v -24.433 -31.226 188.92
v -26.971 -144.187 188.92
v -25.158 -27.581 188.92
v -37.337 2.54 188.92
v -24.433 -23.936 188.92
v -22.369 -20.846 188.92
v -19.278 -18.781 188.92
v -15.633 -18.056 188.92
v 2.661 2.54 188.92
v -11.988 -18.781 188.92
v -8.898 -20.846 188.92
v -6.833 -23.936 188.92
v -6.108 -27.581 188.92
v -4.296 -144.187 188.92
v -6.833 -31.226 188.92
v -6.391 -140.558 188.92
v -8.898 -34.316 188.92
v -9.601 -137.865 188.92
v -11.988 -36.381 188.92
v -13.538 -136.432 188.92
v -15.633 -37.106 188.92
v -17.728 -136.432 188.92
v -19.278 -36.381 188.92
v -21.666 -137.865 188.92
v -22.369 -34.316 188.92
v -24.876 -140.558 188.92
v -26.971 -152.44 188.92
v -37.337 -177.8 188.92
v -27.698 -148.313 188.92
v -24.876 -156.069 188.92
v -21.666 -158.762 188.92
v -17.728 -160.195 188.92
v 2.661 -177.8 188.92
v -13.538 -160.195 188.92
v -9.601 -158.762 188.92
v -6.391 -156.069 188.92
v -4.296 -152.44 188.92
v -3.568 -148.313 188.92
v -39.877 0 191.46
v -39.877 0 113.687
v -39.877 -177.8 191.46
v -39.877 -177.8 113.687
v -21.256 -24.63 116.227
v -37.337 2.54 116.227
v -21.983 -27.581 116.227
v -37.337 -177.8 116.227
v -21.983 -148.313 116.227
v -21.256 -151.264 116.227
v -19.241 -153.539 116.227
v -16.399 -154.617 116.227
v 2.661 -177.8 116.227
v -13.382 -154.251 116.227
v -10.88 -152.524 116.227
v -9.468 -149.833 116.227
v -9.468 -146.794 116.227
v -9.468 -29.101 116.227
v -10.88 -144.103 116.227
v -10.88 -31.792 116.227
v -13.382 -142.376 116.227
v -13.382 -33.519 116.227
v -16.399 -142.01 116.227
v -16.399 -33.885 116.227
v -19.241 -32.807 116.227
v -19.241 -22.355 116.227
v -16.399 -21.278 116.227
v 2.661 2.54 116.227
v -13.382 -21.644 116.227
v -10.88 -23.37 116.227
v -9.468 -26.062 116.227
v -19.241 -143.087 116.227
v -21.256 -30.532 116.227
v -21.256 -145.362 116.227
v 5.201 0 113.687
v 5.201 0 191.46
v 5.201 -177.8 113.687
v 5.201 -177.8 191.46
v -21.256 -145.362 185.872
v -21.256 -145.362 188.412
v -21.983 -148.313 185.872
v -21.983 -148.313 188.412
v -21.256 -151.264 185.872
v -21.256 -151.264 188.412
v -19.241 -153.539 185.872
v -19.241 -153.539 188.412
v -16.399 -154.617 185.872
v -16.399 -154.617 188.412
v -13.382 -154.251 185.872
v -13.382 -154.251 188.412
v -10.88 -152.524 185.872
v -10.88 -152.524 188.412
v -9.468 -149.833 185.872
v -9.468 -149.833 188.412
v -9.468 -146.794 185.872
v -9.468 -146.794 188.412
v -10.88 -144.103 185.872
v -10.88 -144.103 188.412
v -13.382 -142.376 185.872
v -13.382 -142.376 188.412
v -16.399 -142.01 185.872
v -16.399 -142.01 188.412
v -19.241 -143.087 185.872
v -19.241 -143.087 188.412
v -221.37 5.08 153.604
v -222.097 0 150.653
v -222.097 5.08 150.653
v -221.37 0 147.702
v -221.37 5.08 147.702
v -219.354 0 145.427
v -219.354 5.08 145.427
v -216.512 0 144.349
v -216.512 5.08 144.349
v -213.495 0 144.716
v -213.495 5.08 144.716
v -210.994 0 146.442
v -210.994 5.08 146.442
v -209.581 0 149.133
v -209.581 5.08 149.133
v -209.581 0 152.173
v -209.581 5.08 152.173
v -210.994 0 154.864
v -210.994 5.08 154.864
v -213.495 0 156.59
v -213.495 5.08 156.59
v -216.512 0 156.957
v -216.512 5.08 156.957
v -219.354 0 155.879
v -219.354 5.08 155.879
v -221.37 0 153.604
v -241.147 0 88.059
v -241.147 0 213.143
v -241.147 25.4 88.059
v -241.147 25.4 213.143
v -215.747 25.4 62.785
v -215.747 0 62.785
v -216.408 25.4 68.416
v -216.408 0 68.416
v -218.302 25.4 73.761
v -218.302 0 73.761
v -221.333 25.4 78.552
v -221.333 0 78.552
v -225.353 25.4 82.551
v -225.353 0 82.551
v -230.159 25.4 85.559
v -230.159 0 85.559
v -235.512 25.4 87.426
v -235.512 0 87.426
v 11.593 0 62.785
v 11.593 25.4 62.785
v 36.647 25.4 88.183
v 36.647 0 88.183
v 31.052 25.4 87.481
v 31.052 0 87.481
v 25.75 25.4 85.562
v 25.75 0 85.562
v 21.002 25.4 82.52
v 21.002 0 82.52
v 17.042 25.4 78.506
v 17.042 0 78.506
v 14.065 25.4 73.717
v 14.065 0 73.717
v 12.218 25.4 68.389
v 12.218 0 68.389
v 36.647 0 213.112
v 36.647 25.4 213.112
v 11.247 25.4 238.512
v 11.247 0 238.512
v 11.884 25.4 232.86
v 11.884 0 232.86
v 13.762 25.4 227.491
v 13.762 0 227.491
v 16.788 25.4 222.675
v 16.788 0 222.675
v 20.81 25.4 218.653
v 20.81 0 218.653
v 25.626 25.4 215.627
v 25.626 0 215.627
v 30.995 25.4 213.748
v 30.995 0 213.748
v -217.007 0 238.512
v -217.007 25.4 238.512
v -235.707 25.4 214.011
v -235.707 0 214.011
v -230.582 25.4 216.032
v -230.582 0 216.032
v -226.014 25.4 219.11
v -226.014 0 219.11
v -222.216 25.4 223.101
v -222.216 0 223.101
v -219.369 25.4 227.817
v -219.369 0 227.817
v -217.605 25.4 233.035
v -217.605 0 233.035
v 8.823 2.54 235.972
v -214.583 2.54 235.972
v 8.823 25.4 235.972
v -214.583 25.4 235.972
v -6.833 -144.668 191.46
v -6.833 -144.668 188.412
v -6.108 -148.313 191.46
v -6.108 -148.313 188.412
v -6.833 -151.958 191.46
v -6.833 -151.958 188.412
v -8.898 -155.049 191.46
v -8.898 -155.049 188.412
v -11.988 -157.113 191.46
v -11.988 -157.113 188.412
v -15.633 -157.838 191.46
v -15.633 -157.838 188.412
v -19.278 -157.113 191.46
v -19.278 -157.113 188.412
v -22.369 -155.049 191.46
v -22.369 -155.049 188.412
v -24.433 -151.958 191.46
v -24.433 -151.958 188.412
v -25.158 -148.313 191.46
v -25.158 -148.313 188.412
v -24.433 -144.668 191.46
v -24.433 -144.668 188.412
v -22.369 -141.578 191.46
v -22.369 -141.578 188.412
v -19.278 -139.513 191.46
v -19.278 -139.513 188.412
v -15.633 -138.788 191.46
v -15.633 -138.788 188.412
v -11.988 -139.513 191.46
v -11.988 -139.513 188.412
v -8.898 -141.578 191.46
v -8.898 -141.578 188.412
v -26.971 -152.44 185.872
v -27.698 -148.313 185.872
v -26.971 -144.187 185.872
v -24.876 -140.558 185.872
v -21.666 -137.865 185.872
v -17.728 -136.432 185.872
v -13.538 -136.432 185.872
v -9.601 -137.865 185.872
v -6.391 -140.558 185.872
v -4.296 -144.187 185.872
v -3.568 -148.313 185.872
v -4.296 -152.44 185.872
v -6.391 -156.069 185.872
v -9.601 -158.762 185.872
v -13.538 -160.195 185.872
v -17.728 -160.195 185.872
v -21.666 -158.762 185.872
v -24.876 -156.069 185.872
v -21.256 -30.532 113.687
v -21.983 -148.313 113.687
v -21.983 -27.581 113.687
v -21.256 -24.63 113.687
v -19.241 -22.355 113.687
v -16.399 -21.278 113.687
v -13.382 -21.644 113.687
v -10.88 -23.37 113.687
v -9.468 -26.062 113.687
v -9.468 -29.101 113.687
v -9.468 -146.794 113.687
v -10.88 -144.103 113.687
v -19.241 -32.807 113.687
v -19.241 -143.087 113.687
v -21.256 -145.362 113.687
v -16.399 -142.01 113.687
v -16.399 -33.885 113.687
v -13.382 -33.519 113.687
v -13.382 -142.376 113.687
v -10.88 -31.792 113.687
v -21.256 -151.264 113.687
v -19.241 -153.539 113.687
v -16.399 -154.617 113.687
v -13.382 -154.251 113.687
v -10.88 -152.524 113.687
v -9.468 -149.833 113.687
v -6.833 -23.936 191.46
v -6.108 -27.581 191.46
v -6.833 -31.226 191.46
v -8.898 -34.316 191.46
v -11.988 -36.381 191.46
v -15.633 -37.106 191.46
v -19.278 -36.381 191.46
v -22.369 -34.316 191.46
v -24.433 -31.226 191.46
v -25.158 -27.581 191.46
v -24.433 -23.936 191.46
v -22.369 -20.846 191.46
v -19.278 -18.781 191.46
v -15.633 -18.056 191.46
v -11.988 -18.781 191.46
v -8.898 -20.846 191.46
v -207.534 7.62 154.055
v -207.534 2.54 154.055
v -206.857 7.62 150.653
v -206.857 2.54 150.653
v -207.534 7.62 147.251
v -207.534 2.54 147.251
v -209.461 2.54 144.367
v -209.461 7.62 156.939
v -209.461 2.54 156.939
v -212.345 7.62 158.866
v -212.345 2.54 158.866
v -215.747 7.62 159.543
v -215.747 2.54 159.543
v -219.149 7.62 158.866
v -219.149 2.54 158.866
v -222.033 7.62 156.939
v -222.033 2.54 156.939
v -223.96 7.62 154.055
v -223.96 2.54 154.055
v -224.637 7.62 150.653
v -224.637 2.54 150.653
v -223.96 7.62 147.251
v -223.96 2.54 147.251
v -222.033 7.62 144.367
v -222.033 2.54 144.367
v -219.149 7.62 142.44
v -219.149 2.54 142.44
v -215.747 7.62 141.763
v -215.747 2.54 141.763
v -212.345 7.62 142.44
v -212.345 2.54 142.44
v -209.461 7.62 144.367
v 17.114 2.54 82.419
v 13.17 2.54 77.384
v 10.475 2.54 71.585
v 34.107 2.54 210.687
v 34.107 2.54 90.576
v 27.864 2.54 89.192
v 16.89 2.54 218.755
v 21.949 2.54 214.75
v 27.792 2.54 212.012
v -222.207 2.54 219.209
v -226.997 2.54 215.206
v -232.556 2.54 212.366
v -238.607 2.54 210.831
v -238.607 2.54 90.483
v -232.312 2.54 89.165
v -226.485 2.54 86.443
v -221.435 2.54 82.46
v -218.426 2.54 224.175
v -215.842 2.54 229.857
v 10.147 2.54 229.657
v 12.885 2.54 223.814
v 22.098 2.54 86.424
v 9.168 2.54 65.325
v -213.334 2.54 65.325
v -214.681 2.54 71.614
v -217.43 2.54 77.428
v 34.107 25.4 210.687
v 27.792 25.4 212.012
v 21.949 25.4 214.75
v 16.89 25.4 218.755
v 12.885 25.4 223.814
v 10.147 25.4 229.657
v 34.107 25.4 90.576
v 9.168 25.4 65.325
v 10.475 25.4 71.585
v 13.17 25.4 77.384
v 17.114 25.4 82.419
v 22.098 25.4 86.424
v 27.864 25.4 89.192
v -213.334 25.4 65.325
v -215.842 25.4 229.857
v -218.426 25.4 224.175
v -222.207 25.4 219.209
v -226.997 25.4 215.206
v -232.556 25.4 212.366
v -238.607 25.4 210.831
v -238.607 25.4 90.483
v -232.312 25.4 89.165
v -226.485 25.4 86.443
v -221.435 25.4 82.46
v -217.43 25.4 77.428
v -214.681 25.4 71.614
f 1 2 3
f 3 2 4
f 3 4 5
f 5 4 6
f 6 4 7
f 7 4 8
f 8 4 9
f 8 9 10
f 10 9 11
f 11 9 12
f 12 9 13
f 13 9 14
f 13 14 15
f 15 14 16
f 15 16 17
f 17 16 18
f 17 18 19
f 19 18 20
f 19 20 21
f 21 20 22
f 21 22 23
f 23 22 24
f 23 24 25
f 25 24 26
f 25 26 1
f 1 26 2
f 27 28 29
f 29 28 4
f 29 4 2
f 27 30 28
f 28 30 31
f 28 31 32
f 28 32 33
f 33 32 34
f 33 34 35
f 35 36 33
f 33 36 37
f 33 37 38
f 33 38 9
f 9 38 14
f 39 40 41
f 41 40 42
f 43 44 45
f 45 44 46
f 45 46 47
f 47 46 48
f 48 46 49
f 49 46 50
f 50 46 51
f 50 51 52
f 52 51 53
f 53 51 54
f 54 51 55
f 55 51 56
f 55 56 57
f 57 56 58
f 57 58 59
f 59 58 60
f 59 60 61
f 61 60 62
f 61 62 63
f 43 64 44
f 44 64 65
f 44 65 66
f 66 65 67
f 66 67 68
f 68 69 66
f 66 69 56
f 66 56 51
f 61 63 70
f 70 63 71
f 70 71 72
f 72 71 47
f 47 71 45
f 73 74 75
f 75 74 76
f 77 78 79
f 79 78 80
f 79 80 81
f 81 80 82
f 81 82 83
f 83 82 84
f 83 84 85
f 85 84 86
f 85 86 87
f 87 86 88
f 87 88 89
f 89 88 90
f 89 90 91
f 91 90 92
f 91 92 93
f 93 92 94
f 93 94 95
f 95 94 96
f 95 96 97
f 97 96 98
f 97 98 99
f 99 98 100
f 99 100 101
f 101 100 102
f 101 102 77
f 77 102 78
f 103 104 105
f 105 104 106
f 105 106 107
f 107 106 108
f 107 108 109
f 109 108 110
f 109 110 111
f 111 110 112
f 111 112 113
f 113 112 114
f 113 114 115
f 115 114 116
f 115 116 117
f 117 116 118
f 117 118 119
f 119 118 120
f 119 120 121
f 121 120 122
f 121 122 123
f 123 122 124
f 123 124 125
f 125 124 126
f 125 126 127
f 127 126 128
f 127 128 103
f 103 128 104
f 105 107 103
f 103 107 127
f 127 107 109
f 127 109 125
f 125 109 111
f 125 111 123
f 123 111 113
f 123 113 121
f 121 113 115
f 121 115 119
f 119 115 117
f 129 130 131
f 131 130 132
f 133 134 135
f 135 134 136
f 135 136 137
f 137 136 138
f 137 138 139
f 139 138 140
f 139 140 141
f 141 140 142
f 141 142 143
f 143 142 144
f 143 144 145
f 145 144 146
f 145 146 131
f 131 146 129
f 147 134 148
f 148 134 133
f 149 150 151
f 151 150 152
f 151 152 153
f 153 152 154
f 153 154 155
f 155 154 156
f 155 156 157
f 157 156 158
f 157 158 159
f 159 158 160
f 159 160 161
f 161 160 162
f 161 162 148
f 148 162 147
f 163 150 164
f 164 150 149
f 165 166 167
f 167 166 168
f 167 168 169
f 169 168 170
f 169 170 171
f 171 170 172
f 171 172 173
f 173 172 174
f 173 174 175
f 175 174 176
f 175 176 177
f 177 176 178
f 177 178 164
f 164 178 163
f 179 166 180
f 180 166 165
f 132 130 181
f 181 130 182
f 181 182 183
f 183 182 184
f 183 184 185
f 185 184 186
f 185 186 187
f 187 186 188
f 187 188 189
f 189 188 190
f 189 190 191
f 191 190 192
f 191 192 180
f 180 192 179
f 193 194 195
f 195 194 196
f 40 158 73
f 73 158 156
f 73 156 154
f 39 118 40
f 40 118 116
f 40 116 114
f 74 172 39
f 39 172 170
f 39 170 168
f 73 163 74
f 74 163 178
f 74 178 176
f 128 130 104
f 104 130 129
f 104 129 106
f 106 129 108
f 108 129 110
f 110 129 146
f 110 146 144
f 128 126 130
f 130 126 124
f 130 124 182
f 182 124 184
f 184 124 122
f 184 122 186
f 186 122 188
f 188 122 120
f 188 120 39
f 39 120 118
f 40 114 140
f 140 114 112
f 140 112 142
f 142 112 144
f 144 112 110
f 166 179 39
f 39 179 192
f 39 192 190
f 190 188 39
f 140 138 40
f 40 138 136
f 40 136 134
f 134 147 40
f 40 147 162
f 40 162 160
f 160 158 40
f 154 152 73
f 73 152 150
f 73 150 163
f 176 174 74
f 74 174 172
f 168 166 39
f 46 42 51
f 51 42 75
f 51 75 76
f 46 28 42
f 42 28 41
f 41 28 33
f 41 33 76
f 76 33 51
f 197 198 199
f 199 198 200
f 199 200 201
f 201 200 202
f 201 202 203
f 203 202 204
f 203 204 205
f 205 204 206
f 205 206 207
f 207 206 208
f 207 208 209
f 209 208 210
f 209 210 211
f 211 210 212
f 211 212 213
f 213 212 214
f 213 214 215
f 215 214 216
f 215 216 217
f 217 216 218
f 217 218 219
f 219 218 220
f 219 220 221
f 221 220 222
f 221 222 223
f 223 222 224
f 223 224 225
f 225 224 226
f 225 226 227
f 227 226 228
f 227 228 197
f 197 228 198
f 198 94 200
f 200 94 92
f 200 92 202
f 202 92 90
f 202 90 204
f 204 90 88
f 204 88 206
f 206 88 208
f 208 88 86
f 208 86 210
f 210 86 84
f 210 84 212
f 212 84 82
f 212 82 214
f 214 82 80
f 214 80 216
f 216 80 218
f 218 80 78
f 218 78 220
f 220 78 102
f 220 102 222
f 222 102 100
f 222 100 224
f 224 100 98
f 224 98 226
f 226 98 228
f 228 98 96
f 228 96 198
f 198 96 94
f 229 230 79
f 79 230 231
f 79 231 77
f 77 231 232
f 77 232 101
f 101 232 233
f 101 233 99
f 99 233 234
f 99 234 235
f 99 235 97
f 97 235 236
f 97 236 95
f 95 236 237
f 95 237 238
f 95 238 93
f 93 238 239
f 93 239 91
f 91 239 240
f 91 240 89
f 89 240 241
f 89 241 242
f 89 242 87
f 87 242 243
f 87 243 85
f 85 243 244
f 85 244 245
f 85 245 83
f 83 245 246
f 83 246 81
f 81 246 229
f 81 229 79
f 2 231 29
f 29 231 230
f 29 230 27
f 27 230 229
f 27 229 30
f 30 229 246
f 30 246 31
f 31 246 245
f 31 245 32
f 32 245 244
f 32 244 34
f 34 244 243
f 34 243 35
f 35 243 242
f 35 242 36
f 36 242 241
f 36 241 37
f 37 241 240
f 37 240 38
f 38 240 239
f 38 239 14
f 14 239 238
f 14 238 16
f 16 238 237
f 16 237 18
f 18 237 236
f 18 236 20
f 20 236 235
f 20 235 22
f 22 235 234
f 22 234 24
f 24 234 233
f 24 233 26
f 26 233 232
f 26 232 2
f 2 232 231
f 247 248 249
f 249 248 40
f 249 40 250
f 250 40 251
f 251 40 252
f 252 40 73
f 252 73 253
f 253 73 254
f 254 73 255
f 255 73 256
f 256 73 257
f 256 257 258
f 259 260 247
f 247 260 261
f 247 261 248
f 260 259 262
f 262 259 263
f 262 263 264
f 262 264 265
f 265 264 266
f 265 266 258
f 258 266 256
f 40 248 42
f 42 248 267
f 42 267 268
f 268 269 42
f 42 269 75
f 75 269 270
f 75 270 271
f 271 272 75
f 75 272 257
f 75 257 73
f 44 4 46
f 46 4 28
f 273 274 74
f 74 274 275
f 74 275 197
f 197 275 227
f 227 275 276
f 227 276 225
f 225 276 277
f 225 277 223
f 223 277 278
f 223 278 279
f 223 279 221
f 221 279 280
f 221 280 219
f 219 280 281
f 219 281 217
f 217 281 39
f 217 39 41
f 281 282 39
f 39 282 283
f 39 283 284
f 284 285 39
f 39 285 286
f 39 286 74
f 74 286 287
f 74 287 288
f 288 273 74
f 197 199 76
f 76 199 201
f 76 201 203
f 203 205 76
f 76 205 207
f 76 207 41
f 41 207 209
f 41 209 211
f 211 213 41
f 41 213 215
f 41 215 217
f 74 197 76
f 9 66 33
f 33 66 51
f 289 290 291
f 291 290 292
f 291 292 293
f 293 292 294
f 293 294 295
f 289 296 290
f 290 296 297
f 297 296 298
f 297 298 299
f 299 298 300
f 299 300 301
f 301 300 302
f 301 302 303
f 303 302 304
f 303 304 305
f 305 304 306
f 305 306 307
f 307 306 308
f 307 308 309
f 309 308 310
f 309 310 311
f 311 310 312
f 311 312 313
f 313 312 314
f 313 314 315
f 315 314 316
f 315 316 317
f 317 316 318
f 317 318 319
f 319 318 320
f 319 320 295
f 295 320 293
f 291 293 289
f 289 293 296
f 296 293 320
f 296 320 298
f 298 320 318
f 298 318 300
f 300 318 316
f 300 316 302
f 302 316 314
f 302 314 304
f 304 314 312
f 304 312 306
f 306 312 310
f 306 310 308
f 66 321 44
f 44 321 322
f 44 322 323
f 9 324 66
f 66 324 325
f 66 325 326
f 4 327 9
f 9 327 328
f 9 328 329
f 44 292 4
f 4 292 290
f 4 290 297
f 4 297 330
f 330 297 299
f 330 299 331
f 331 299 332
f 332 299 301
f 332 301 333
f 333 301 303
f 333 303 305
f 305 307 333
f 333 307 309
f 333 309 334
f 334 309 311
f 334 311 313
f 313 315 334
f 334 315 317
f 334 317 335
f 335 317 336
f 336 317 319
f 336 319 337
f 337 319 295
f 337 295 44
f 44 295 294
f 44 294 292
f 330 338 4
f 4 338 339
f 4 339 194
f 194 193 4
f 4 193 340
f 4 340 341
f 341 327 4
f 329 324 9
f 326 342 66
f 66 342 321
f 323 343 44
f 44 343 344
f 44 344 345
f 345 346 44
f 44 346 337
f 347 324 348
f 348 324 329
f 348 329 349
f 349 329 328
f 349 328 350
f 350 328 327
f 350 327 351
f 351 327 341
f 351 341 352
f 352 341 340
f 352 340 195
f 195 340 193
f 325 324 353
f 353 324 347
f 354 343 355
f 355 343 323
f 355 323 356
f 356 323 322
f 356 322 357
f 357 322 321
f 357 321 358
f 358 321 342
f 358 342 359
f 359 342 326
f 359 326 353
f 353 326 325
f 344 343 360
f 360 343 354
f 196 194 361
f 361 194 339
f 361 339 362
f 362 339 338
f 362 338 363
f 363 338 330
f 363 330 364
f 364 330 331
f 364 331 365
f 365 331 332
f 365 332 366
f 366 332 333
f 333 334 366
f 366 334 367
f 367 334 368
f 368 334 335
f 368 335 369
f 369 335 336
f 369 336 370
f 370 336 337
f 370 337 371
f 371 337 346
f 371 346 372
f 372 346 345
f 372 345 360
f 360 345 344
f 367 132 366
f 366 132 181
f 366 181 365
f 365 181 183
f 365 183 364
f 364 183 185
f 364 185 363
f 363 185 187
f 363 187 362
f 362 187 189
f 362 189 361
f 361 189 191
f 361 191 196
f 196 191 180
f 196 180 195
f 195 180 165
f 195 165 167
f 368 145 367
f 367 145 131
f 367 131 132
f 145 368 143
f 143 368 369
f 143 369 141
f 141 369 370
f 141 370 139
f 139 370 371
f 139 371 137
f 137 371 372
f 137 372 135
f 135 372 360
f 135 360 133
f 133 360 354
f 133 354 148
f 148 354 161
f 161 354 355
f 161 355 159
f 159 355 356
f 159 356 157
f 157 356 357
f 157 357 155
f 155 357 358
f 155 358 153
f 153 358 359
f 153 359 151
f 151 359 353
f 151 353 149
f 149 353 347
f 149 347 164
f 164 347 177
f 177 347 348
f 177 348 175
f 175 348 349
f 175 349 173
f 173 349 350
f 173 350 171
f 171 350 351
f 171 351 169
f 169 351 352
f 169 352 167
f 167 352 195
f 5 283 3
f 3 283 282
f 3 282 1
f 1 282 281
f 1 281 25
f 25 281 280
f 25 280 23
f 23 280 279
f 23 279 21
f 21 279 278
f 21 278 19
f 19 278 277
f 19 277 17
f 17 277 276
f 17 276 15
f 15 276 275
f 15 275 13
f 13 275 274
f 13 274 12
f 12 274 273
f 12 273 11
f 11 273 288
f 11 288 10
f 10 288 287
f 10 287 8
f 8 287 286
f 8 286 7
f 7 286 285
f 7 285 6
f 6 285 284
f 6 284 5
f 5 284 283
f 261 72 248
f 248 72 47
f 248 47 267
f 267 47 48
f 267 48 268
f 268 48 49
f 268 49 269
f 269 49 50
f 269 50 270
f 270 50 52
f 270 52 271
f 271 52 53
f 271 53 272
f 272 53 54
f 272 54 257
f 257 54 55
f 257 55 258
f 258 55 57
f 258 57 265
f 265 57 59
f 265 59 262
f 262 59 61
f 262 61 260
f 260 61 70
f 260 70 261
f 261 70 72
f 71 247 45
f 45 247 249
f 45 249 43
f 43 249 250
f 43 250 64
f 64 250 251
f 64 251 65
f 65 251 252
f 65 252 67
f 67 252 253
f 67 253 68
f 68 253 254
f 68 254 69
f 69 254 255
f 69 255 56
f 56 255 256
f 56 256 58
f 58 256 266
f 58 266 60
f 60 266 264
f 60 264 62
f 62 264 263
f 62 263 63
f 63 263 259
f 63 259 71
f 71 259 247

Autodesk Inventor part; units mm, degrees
ref_plane "YZ Plane" through (0, 0, 0) normal (1, 0, 0) x (0, 1, 0)
ref_plane "XZ Plane" through (0, 0, 0) normal (0, 1, 0) x (-1, 0, 0)
ref_plane "XY Plane" through (0, 0, 0) normal (0, 0, 1) x (1, 0, 0)
sketch "Sketch1" plane through (0, 0, 0) normal (0, 1, 0) x (-1, 0, 0)
  line L0 (217.0075, 238.5115) -> (-11.2469, 238.5115)
  line L1 (-36.6469, 213.1115) -> (-36.6469, 88.1828)
  line L2 (-11.5925, 62.7851) -> (215.7472, 62.7851)
  line L3 (241.1469, 88.0591) -> (241.1469, 213.1428)
  arc A0 (217.0075, 238.5115) -> (241.1469, 213.1428) centre (242.4075, 238.5115) ccw
  arc A1 (241.1469, 88.0591) -> (215.7472, 62.7851) centre (241.1469, 62.6591) ccw
  arc A2 (-36.6469, 213.1115) -> (-11.2469, 238.5115) centre (-36.6469, 238.5115) ccw
  arc A3 (-11.5925, 62.7851) -> (-36.6469, 88.1828) centre (-36.9925, 62.7851) ccw
  circle A4 centre (215.7469, 150.6529) radius 9.525
  circle A5 centre (215.7469, 150.6529) radius 6.35
  point P0 (0, 0)
  dimension "d6" = 227.3398
  dimension "d7" = 277.7939
  dimension "d10" = 125.0838
  dimension "d11" = 175.7264
  dimension "d12" = 19.05
  dimension "d13" = 12.7
  dimension "d14" = 87.8586
  dimension "d15" = 25.4
extrude "Extrusion1" add sketch "Sketch1" along normal blind 25.4 contours A0 L3 A1 L2 A3 L1 A2 L0 | A4 | A5
extrude "Extrusion2" cut sketch "Sketch1" along normal blind 5.08 contours A5
sketch "Sketch2" plane through (0, 0, 0) normal (0, -1, 0) x (1, 0, 0)
  point P0 (0, 0)
sketch "Sketch3" plane through (0, 0, 0) normal (0, -1, 0) x (1, 0, 0)
  line L0 (-39.8772, 113.6871) -> (5.2014, 113.6871)
  line L1 (5.2014, 113.6871) -> (5.2014, 191.46)
  line L2 (5.2014, 191.46) -> (-39.8772, 191.46)
  line L3 (-39.8772, 191.46) -> (-39.8772, 113.6871)
  point P0 (0, 0)
extrude "Extrusion3" add sketch "Sketch3" along normal blind 177.8
sketch "Sketch4" plane through (-39.8772, 0, 191.46) normal (0, 0, 1) x (1, 0, 0)
  point P0 (39.8772, 0)
sketch "Sketch5" plane through (-39.8772, 0, 191.46) normal (0, 0, 1) x (1, 0, 0)
  circle A0 centre (24.2438, -148.3134) radius 6.35
  point P0 (39.8772, 0)
  dimension "d20" = 12.7
hole "Hole1" at (-15.6334, -148.3134, 191.46) direction (0, 0, -1) diameter 12.7 end through all counterbore diameter 19.05 counterbore depth 3.048
shell "Shell1" thickness 2.54 removed faces 2 at (-24.851, -177.8, 139.6114) at (-15.1224, -154.6429, 163.5037)
sketch "Sketch6" plane through (-39.8772, 0, 191.46) normal (0, 0, 1) x (1, 0, 0)
  circle A0 centre (24.2438, -27.5812) radius 6.35
  point P0 (39.8772, 0)
  dimension "d29" = 12.7
hole "Hole2" at (-15.6334, -27.5812, 191.46) direction (0, 0, -1) diameter 12.7 end through all counterbore diameter 19.05 counterbore depth 3.048
shell "Shell2" thickness 2.54 removed faces 3 at (-143.2625, 25.4, 176.3813) at (-140.9901, 22.86, 175.1392) at (-153.6846, 2.54, 191.1872)
properties part number "BASE"
